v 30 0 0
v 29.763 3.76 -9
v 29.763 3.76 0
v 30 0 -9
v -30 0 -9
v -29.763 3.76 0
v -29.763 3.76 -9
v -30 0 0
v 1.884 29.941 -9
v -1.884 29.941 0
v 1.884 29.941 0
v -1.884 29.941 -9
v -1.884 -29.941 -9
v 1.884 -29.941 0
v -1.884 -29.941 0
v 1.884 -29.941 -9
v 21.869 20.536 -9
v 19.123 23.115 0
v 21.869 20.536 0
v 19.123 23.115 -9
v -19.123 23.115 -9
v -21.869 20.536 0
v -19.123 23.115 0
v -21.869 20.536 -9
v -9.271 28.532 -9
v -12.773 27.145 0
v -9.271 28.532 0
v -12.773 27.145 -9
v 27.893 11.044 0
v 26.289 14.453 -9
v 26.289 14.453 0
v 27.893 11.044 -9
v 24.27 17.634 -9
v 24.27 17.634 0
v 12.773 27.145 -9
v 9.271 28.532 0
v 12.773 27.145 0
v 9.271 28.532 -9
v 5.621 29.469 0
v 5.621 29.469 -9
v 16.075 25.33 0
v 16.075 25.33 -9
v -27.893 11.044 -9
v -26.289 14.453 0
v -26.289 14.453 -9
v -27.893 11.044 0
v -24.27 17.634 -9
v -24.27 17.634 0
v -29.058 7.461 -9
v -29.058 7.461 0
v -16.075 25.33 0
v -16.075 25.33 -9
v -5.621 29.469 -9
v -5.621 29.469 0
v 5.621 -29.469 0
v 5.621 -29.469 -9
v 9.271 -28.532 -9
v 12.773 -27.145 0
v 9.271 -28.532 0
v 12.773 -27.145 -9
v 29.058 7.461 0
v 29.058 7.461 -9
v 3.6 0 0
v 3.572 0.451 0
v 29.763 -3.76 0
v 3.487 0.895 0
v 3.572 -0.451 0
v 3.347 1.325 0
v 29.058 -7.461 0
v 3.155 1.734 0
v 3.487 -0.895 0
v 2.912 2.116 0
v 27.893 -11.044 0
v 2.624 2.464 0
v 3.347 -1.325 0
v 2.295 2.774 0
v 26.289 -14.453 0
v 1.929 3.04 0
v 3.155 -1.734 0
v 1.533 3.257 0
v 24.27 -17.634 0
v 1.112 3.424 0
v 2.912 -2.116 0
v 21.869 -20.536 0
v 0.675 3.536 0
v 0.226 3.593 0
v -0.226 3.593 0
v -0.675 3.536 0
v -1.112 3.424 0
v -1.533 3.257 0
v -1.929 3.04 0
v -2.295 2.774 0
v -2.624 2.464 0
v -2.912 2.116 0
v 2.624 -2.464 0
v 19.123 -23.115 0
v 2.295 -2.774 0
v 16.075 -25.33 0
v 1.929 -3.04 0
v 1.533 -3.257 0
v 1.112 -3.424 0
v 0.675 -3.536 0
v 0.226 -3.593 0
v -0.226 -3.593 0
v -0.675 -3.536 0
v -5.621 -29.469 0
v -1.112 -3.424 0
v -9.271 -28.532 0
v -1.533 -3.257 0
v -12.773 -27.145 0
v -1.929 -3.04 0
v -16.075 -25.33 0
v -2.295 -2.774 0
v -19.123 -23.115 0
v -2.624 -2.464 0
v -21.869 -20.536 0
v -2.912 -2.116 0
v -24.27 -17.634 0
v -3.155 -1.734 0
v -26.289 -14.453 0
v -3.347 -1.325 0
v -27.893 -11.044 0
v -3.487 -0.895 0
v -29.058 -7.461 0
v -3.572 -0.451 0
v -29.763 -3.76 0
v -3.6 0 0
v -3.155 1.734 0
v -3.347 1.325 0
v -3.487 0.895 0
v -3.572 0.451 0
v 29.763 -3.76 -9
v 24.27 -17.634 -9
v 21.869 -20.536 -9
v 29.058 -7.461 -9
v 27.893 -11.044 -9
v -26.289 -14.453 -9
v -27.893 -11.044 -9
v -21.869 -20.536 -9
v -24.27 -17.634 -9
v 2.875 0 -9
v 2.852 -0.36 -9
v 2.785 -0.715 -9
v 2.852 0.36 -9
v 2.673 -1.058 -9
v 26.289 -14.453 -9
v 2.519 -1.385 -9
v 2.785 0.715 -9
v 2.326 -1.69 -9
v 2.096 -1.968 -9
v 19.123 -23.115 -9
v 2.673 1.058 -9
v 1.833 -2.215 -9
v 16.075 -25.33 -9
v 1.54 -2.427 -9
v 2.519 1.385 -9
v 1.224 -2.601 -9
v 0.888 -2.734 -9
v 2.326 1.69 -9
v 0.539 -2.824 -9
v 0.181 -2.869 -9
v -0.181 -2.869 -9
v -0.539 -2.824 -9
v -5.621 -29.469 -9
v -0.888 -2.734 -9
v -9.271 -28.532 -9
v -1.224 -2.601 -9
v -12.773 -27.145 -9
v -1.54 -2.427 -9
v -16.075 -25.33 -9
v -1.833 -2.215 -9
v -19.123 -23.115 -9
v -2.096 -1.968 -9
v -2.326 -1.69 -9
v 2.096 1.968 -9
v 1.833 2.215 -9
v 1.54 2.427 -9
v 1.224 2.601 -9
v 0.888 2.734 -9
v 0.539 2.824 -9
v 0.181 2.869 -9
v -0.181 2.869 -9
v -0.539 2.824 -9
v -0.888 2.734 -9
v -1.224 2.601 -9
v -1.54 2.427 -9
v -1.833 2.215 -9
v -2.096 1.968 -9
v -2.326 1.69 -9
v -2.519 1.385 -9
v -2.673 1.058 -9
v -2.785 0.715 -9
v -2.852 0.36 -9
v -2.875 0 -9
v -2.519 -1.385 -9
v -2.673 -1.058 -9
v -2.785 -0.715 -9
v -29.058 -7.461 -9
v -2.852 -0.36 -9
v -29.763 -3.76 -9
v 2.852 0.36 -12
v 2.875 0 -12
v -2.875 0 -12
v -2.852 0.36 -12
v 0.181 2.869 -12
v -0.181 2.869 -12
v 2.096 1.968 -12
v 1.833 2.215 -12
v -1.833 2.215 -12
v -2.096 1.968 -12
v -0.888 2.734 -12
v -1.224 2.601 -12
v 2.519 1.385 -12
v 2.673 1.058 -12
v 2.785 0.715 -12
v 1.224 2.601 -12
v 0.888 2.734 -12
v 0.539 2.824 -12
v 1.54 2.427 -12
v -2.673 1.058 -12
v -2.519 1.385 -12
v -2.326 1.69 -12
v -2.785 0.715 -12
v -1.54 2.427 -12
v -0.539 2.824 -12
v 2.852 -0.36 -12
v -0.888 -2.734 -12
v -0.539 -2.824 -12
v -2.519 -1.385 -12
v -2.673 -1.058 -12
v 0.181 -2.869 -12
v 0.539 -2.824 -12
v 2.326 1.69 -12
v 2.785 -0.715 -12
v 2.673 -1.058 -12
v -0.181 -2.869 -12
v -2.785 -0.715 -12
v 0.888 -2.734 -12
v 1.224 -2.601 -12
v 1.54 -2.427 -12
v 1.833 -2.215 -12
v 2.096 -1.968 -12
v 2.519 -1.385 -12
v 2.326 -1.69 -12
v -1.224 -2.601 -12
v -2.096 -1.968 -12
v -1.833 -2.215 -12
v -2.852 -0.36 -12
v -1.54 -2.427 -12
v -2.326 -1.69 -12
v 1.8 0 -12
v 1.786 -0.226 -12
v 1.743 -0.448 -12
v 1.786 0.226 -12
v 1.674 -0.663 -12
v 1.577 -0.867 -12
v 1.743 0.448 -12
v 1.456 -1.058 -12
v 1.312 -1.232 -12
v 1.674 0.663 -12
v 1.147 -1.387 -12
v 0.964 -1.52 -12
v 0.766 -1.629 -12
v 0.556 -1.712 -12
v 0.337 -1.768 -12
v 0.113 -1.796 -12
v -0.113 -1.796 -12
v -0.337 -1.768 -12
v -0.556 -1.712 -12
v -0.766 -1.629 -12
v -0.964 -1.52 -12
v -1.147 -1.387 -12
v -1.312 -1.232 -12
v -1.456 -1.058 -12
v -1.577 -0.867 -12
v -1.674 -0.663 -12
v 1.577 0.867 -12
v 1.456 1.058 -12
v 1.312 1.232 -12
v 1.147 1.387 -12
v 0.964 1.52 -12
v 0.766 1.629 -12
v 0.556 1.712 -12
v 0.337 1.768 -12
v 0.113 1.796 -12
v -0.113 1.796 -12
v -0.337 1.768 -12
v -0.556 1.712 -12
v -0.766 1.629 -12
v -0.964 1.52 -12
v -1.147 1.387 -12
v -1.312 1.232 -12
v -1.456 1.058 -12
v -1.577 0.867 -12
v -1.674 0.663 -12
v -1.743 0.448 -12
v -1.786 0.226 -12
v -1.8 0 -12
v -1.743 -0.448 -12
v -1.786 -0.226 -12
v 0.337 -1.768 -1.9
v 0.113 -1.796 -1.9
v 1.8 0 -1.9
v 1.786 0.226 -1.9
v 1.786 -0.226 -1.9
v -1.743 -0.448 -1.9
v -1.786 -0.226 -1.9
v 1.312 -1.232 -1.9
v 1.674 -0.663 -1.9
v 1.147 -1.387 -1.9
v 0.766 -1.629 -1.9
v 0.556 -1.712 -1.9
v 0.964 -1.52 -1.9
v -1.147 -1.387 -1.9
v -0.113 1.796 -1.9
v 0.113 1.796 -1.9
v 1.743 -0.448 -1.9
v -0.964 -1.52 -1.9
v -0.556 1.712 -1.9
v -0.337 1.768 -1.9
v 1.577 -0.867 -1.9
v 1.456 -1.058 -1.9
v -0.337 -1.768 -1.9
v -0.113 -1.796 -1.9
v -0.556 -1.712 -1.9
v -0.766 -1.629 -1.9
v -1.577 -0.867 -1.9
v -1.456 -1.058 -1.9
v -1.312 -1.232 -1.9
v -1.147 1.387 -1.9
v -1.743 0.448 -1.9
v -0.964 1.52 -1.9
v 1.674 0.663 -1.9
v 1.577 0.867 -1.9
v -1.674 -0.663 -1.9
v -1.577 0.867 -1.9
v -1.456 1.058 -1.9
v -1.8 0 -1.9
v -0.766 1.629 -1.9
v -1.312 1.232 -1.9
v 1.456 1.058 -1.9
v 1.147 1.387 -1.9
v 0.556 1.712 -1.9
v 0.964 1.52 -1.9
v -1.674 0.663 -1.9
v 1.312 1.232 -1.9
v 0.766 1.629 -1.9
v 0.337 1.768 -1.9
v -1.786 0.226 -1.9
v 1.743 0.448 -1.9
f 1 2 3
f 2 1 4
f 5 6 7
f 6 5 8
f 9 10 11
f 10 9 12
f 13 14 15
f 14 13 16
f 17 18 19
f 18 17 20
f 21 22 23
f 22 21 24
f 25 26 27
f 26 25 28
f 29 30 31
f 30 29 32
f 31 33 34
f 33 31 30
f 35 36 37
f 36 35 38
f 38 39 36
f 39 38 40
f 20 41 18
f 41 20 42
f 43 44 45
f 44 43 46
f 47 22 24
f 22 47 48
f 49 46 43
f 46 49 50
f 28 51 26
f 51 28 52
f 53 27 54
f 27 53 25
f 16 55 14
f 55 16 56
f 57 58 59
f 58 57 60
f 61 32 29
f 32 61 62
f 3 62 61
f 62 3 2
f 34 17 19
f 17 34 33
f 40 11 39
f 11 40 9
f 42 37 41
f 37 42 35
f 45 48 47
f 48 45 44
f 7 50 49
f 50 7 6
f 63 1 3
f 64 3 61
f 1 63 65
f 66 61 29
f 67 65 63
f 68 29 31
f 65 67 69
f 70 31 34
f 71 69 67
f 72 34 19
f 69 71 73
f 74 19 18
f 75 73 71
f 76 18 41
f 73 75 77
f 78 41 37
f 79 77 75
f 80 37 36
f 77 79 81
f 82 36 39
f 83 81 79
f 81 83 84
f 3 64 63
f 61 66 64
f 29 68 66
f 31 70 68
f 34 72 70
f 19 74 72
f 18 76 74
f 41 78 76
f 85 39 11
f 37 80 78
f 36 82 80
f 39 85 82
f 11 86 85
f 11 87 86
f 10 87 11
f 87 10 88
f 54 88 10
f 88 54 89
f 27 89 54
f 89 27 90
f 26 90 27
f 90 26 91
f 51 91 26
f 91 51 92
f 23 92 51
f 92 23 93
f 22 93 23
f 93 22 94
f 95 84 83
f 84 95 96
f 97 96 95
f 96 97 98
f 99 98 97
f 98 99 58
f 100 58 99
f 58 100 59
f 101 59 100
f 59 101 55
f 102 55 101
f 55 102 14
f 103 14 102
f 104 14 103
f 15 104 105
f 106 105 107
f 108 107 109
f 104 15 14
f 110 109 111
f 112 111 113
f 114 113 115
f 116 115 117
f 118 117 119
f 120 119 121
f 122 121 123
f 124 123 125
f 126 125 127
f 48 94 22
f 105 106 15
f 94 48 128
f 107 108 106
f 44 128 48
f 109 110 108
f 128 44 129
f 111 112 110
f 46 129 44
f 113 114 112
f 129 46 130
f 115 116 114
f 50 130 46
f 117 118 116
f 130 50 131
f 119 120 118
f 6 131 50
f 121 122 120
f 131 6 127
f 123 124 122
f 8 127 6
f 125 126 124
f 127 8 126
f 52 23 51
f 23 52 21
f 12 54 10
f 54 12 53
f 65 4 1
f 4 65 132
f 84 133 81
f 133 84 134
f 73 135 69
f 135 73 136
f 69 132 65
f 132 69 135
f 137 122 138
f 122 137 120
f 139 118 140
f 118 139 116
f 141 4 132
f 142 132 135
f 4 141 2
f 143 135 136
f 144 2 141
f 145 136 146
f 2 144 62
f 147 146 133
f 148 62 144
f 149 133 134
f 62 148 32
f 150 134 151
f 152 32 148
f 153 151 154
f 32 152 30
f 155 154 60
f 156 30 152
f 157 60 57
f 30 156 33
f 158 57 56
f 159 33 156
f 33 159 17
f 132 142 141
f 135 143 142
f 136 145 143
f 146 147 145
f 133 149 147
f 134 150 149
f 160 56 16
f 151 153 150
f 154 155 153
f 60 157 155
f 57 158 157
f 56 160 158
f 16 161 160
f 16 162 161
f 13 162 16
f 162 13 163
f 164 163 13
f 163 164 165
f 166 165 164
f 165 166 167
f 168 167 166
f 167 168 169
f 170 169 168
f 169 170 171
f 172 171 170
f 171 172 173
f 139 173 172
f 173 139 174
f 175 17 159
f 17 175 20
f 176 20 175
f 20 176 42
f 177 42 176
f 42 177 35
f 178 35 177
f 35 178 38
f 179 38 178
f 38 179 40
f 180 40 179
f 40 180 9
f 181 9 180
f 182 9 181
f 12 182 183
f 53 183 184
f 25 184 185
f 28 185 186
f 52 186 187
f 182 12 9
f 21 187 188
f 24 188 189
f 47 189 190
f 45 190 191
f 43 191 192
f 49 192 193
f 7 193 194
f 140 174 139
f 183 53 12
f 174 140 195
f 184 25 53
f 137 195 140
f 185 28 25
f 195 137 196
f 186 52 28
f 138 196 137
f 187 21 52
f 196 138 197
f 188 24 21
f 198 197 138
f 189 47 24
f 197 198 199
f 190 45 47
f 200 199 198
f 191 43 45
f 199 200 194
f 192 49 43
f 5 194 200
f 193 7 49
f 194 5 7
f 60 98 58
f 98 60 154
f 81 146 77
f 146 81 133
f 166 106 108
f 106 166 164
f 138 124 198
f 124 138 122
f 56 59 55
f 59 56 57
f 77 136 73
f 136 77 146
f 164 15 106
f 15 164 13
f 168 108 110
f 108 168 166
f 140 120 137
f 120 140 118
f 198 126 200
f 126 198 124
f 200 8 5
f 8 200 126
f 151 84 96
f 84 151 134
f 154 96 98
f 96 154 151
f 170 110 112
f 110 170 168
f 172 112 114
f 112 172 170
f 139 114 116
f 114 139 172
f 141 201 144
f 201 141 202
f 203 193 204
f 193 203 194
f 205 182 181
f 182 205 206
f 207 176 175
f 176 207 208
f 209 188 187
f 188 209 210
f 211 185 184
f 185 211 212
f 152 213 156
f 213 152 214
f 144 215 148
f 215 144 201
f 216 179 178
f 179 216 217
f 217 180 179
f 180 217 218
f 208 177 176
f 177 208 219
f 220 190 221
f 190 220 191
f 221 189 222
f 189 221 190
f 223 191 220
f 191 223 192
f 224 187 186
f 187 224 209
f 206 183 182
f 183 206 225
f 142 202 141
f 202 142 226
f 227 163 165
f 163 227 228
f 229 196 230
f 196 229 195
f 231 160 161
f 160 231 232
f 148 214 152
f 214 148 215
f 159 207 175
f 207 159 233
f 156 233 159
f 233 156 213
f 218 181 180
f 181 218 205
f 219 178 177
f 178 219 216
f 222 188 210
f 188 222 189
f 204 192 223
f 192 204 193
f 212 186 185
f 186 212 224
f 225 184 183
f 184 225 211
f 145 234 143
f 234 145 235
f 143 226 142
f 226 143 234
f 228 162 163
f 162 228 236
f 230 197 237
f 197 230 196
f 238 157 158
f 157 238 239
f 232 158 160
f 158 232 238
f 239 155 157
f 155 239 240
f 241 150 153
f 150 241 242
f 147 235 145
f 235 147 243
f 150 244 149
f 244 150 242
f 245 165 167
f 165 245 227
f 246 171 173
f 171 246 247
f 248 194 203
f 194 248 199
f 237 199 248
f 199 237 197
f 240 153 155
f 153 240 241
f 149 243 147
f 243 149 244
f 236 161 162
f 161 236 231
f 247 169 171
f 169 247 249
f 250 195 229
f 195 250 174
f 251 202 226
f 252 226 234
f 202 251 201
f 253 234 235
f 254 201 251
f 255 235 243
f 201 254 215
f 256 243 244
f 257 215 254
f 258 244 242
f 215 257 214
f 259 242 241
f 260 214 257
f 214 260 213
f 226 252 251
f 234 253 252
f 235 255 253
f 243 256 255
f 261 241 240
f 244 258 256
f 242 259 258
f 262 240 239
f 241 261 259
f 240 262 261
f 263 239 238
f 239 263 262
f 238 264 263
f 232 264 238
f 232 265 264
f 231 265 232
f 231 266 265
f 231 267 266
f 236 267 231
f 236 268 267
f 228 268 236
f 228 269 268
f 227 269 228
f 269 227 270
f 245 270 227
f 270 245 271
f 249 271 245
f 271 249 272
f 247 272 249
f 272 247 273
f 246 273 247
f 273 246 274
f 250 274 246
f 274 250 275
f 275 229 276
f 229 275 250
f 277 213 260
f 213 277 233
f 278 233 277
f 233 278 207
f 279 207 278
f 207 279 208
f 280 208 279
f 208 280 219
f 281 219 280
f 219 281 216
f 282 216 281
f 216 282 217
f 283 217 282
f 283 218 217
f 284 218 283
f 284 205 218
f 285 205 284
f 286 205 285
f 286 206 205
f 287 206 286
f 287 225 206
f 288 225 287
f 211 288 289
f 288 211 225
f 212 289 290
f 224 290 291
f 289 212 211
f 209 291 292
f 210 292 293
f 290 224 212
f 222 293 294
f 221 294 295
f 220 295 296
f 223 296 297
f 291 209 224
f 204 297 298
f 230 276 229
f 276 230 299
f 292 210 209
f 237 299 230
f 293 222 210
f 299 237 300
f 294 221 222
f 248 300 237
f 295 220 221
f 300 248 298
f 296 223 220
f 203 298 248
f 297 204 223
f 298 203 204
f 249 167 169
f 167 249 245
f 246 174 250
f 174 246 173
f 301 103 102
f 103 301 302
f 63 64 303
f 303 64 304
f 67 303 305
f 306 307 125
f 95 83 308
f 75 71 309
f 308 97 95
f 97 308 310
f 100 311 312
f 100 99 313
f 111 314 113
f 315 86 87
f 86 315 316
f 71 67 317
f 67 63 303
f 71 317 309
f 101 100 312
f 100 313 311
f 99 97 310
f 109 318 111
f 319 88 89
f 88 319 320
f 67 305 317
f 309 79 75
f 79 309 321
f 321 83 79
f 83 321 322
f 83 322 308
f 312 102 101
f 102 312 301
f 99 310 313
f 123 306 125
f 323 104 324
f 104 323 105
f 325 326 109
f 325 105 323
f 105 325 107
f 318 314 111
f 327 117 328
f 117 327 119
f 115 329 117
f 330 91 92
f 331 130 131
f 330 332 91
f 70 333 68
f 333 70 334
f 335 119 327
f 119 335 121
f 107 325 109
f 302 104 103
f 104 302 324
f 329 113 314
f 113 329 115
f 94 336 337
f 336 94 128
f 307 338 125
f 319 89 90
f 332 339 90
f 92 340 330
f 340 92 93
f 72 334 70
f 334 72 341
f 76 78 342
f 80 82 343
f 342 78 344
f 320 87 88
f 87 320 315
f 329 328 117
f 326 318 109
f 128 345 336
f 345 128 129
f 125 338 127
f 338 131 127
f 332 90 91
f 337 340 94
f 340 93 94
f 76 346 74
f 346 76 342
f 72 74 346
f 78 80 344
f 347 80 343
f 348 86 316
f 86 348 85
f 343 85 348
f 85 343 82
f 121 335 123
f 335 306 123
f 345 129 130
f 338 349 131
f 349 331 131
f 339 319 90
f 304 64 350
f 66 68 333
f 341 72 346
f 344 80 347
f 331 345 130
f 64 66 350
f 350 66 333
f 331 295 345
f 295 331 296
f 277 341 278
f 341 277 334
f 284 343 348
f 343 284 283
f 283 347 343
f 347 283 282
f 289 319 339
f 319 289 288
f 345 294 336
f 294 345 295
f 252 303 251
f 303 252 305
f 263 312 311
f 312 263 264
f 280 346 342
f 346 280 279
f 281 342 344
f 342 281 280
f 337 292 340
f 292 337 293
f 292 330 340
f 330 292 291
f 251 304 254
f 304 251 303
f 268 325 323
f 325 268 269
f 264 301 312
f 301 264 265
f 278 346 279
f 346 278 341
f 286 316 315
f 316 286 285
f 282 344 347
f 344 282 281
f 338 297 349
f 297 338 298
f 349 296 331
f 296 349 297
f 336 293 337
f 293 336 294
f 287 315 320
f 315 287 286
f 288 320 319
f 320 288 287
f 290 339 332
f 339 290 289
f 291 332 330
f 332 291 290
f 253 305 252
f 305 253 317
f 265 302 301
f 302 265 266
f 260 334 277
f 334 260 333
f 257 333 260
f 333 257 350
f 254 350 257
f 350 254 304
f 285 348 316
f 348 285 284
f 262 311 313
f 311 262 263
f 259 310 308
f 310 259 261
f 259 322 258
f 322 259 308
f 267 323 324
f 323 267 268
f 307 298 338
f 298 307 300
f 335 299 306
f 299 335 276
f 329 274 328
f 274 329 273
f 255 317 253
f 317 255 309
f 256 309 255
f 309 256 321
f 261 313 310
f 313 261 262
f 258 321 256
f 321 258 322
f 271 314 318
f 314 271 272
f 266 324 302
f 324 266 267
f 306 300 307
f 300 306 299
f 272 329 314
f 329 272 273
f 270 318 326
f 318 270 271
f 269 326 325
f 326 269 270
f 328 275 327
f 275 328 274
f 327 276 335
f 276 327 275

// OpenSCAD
$fn = 50;

difference() {
	union() {
		translate(v = [0, 0, -9.0]) {
			cylinder(h = 9, r = 30.0);
		}
		#translate(v = [0, 0, -12.0]) {
			cylinder(h = 12, r = 2.875);
		}
	}
	union() {
		translate(v = [0, 0, 0]) {
			rotate(a = [0, 0, 0]) {
				difference() {
					union() {
						translate(v = [0, 0, -12.0]) {
							cylinder(h = 12, r = 1.5);
						}
						translate(v = [0, 0, -1.9]) {
							cylinder(h = 1.9, r1 = 1.8, r2 = 3.6);
						}
						translate(v = [0, 0, -12.0]) {
							cylinder(h = 12, r = 1.8);
						}
						translate(v = [0, 0, -12.0]) {
							cylinder(h = 12, r = 1.5);
						}
					}
					union();
				}
			}
		}
	}
}
